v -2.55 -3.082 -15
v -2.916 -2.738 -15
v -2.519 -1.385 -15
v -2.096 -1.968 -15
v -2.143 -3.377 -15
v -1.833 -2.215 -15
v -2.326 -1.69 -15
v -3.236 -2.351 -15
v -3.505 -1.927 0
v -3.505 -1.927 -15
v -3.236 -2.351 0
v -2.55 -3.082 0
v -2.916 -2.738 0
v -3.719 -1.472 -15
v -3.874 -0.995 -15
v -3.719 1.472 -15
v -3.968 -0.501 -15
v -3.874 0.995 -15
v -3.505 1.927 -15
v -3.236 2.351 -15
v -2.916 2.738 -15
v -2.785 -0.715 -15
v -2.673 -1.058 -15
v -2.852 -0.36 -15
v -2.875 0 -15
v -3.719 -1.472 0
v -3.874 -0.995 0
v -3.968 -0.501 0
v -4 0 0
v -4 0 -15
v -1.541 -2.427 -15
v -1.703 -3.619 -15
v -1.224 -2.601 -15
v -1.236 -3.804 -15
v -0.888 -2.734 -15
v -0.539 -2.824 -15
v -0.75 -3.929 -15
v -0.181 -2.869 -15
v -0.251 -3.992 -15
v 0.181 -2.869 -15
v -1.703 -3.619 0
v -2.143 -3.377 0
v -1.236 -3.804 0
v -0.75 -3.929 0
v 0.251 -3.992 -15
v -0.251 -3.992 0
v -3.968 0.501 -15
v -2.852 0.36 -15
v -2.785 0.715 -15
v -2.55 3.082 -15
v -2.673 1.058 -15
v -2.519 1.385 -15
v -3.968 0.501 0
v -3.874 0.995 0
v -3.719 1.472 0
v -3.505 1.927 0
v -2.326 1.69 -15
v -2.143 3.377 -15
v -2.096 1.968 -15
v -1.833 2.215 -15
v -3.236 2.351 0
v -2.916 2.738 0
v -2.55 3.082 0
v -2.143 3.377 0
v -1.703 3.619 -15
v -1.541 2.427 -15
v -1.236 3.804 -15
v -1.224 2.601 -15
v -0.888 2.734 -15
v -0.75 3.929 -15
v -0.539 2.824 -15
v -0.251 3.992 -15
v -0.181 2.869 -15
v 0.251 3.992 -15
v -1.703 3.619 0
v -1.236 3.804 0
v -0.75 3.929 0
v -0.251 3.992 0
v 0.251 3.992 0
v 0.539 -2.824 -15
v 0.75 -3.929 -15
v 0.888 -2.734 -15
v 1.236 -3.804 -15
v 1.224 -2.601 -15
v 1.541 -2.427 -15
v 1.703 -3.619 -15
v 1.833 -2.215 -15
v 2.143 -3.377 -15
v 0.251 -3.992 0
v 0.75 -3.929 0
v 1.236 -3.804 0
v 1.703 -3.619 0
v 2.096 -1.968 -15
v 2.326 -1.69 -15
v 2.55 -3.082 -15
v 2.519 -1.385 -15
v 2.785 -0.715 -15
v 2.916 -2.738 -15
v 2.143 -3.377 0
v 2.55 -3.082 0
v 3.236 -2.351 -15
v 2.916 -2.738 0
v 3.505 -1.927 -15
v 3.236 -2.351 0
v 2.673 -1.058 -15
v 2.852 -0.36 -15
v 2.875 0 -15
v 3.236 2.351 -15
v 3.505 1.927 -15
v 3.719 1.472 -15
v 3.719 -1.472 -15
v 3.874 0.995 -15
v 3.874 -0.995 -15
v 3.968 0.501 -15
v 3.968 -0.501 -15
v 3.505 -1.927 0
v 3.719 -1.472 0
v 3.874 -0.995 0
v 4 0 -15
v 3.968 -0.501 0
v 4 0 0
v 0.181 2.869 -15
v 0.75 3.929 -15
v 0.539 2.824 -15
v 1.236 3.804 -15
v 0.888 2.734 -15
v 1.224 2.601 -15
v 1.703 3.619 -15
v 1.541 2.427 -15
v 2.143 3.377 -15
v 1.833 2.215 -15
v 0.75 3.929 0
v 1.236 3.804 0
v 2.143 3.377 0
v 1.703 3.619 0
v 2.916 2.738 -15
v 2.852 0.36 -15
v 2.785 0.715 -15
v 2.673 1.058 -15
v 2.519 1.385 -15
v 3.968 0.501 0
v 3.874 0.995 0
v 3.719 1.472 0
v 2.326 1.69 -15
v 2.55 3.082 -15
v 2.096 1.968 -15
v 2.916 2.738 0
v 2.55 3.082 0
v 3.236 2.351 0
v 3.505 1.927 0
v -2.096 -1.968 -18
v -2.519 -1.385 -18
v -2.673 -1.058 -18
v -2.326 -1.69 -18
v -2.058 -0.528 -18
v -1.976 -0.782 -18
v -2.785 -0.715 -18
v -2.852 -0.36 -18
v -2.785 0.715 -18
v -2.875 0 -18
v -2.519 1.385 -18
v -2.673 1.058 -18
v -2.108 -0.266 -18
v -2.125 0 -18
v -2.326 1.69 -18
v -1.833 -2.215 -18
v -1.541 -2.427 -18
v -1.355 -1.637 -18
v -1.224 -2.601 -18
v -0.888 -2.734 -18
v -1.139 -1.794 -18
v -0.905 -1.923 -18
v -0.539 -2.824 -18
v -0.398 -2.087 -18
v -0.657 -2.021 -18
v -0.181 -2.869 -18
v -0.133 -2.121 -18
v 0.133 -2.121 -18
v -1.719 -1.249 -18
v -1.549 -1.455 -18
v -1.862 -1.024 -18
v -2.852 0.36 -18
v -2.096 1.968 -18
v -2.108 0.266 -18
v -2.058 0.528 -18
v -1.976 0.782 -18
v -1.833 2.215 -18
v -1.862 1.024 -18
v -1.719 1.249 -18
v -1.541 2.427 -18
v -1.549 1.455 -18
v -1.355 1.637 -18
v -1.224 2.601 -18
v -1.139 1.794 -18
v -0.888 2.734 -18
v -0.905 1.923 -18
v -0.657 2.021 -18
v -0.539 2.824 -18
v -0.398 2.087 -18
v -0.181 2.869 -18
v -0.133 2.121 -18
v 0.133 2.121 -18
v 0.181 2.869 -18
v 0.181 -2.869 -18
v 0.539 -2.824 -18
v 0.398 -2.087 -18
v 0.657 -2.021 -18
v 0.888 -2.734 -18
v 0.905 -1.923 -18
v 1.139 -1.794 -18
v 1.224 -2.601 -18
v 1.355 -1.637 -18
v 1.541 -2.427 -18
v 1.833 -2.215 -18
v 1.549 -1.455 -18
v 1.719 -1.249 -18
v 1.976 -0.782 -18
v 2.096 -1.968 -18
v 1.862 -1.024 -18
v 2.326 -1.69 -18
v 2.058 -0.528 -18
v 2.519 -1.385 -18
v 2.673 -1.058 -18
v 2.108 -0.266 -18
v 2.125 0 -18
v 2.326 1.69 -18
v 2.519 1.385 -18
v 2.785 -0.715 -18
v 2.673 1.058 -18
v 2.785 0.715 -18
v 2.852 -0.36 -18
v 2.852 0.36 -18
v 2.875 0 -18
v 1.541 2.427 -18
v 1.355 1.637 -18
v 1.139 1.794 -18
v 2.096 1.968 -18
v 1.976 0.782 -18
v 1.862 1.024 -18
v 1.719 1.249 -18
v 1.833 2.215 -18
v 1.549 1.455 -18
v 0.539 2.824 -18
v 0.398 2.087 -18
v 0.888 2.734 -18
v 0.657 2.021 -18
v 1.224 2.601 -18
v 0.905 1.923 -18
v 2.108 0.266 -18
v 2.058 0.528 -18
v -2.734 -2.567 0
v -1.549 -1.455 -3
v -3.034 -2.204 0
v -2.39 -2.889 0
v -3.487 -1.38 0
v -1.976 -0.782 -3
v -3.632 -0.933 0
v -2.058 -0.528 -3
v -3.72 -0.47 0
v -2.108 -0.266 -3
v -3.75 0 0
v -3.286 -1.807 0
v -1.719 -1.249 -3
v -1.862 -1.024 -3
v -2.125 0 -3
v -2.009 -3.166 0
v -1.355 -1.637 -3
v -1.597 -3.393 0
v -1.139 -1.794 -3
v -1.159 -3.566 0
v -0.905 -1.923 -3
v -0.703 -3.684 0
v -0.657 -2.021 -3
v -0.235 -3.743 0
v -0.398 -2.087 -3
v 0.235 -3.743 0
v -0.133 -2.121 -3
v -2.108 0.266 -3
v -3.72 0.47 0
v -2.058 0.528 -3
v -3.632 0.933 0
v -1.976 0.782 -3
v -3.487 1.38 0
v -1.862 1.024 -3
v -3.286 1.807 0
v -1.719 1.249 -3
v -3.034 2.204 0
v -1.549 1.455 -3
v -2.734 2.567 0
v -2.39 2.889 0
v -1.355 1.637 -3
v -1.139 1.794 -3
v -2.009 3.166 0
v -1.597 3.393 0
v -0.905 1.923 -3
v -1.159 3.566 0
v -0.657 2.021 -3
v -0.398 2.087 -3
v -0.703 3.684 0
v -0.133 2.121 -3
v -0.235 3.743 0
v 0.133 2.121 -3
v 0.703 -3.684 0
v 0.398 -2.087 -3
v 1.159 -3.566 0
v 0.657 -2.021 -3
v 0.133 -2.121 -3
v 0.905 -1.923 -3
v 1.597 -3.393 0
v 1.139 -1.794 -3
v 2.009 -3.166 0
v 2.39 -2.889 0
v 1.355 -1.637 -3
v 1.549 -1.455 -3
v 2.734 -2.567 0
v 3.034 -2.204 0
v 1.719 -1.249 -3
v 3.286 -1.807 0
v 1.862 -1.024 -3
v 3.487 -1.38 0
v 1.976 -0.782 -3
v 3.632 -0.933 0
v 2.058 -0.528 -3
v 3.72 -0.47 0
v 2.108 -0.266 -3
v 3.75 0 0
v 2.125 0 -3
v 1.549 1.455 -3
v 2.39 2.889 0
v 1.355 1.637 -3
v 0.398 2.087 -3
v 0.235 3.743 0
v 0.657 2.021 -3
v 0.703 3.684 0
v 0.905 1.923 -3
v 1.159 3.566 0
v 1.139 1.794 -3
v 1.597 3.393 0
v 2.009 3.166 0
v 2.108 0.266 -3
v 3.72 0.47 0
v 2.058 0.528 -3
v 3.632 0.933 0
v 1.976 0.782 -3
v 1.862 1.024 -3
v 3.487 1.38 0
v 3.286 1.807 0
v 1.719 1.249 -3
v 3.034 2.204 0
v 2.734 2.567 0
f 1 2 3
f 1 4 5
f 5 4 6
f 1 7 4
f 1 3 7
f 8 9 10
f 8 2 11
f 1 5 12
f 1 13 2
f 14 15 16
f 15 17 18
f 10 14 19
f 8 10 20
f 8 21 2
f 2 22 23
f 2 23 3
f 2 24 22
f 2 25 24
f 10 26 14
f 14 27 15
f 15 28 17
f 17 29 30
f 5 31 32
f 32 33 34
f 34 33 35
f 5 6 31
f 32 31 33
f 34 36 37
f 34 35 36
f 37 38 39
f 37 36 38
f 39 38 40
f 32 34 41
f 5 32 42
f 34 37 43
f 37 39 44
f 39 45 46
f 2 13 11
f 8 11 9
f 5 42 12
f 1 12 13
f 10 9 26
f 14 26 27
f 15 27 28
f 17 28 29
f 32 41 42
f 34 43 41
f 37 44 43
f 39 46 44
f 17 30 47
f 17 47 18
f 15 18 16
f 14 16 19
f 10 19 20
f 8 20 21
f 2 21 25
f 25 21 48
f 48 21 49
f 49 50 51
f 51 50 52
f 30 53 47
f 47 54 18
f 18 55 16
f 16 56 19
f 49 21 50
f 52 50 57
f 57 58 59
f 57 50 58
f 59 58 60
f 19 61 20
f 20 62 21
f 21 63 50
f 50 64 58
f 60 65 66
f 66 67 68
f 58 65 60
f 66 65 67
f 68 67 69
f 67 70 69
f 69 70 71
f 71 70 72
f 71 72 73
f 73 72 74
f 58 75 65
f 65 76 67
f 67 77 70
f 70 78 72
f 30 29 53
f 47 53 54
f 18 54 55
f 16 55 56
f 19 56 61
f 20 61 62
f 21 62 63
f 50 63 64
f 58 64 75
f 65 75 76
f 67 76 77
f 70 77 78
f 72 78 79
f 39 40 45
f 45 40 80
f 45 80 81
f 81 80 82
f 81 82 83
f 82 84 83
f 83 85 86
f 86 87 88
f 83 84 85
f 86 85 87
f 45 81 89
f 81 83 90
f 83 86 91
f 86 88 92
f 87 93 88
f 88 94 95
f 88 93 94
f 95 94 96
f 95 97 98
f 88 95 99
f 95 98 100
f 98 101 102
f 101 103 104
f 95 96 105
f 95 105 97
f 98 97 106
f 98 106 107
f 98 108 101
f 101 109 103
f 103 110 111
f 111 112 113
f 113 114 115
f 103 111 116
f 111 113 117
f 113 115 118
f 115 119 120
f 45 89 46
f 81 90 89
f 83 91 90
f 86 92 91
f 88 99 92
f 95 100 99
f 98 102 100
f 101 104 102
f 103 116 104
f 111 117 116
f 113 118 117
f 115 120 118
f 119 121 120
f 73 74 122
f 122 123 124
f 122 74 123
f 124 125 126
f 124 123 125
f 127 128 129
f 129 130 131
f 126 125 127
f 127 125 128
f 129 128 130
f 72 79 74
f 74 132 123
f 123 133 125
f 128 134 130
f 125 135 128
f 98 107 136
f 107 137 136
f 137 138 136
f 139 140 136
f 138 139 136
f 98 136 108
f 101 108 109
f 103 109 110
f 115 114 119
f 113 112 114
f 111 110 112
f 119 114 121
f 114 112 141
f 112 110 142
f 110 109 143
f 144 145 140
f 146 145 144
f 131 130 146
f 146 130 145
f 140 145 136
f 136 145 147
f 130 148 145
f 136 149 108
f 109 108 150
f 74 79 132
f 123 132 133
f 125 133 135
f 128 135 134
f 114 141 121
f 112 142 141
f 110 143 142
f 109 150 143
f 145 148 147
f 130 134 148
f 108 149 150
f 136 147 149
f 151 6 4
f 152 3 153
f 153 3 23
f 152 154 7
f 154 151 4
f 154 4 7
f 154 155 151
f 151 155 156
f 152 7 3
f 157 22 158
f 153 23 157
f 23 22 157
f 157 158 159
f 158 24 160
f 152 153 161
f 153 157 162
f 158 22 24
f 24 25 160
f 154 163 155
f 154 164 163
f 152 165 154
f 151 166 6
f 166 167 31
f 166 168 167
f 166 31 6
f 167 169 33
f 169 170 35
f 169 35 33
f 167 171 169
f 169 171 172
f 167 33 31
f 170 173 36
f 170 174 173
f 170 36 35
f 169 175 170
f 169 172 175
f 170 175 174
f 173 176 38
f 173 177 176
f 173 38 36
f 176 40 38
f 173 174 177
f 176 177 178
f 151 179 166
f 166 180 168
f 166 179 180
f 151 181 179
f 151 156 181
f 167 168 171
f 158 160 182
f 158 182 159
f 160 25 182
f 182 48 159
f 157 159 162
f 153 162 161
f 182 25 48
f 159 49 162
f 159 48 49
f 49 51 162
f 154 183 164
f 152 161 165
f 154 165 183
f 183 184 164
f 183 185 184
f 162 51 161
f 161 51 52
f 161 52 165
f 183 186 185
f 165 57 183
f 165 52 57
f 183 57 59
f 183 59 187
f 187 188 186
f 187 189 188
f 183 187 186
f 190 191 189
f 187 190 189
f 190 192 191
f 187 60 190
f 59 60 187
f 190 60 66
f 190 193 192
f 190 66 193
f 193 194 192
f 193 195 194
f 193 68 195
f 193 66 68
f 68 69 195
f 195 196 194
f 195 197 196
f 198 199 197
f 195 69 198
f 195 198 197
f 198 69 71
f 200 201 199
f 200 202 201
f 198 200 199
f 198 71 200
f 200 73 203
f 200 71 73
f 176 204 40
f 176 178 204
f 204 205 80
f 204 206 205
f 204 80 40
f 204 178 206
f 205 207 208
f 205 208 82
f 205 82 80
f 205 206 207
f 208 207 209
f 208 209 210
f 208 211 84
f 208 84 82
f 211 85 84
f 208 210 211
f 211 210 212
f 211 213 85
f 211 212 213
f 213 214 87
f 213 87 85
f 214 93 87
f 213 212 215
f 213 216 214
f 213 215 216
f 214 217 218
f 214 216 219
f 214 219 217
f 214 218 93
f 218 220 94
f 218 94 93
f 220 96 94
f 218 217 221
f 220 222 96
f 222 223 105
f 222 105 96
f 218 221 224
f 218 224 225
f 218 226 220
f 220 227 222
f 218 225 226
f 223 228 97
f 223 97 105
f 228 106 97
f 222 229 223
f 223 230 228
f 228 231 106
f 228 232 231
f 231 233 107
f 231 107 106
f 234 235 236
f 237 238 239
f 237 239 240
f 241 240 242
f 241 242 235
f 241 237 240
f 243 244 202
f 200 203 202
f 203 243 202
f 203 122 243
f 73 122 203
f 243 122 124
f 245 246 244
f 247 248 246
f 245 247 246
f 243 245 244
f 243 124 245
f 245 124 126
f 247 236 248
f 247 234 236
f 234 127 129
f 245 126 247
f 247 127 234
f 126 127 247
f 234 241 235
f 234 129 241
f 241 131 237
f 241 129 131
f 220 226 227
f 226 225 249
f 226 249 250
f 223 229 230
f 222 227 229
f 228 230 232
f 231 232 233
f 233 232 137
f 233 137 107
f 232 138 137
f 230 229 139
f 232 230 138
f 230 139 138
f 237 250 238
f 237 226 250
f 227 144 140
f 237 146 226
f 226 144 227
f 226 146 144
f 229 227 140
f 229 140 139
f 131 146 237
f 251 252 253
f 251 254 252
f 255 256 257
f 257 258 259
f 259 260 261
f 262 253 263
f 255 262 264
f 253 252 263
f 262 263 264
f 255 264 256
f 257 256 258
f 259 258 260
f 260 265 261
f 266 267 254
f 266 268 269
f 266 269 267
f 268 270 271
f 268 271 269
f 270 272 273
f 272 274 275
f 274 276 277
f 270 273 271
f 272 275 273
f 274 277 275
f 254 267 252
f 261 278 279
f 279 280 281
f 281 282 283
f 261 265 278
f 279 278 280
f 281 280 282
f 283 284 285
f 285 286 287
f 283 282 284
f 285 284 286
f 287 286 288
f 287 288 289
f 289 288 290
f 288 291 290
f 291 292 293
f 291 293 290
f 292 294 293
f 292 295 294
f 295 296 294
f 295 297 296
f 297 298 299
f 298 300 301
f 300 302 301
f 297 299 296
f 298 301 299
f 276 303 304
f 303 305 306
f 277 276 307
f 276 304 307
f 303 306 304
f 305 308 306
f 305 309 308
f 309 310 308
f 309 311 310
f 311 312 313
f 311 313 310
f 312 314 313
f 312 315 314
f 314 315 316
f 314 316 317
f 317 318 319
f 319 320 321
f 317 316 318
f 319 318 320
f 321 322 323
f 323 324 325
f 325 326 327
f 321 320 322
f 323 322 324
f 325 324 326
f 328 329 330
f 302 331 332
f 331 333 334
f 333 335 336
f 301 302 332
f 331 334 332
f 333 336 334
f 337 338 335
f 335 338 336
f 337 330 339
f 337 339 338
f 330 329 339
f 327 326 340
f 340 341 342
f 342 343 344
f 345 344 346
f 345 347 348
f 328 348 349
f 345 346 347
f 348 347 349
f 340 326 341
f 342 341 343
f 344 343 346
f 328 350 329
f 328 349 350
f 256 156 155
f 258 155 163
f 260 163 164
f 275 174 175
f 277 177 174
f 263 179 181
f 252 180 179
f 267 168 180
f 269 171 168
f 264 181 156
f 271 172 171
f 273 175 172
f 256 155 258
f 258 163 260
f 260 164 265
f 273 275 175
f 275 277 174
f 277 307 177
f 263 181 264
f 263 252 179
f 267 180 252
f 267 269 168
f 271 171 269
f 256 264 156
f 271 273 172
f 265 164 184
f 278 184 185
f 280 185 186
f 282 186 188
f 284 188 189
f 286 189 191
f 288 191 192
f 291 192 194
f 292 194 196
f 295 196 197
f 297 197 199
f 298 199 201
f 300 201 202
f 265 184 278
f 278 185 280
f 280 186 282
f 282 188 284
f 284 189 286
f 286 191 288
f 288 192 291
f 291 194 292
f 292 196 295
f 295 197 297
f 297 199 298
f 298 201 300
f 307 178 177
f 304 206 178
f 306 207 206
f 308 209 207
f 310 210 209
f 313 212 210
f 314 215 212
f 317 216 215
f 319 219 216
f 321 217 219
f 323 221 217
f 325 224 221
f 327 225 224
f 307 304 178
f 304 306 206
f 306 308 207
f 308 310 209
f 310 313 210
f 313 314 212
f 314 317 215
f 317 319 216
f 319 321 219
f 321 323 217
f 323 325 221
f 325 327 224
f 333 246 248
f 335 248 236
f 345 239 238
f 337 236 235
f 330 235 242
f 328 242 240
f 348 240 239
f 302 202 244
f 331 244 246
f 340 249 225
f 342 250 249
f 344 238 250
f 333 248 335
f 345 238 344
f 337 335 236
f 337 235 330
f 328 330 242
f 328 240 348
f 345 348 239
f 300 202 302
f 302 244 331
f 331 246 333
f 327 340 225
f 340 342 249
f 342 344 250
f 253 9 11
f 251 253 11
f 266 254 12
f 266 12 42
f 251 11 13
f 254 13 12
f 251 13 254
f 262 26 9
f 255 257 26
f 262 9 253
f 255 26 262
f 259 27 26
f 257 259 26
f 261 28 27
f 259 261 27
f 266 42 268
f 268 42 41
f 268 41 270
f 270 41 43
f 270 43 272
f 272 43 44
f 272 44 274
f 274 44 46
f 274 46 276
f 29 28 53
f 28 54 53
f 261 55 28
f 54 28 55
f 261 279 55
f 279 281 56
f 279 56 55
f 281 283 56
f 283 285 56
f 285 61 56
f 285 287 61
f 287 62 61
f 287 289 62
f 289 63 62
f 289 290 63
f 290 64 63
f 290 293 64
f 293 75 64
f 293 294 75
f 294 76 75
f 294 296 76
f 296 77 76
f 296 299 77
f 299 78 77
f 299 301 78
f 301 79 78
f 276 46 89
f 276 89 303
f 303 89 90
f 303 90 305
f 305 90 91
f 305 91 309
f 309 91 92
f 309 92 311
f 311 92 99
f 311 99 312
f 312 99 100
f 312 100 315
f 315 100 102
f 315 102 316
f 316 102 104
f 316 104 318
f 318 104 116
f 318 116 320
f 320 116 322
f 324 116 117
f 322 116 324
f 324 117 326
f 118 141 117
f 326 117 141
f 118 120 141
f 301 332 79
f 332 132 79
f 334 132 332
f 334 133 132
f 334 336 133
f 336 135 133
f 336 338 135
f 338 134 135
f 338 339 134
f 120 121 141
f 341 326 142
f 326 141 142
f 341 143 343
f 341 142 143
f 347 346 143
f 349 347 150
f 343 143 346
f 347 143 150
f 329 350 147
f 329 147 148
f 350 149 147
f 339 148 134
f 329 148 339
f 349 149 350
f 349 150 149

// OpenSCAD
$fn = 50;

difference() {
	union() {
		translate(v = [0, 0, -15.0]) {
			cylinder(h = 18, r = 4.0);
		}
		#translate(v = [0, 0, -18.0]) {
			cylinder(h = 18, r = 2.875);
		}
	}
	union() {
		translate(v = [0, 0, 0]) {
			rotate(a = [0, 0, 0]) {
				difference() {
					union() {
						translate(v = [0, 0, -18.0]) {
							cylinder(h = 18, r = 2.0);
						}
						translate(v = [0, 0, -3]) {
							cylinder(h = 3, r1 = 2.125, r2 = 3.75);
						}
						translate(v = [0, 0, -18.0]) {
							cylinder(h = 18, r = 2.125);
						}
						translate(v = [0, 0, -18.0]) {
							cylinder(h = 18, r = 2.0);
						}
					}
					union();
				}
			}
		}
		#cylinder(h = 3, r = 5.0);
	}
}
